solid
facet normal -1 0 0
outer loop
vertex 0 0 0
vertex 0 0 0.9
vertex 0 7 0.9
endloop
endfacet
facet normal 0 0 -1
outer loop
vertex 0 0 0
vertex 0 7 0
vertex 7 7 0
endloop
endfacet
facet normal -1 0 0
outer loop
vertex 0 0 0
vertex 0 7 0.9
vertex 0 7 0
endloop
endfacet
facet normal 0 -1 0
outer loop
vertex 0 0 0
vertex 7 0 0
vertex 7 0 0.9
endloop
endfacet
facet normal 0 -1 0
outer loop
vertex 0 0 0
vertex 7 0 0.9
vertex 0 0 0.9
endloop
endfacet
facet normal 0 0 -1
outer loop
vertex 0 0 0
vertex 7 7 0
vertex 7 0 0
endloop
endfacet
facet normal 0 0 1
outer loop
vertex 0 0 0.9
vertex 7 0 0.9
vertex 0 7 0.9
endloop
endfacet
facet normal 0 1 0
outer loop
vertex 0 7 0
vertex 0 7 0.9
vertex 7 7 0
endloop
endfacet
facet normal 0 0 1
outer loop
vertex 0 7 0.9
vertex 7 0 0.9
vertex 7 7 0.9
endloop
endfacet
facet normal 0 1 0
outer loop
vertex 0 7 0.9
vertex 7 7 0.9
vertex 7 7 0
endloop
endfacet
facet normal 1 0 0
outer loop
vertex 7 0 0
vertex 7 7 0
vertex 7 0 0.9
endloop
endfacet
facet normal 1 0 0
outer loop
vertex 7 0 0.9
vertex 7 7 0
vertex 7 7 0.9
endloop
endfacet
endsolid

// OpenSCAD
/* Warning, this is a very basic generator with a lot of approximation 
input data : [VQFN, PXA, 7X7X0.9mm, 48, , F, C04-01263F]
generated by com.zoubworld.electronics.cad.model3d.Basic
Date : Sun Feb 15 10:50:49 CET 2026
*/

//body
color("black")
translate([0,0,0])
cube([7.0,7.0,0.9], center=false);
